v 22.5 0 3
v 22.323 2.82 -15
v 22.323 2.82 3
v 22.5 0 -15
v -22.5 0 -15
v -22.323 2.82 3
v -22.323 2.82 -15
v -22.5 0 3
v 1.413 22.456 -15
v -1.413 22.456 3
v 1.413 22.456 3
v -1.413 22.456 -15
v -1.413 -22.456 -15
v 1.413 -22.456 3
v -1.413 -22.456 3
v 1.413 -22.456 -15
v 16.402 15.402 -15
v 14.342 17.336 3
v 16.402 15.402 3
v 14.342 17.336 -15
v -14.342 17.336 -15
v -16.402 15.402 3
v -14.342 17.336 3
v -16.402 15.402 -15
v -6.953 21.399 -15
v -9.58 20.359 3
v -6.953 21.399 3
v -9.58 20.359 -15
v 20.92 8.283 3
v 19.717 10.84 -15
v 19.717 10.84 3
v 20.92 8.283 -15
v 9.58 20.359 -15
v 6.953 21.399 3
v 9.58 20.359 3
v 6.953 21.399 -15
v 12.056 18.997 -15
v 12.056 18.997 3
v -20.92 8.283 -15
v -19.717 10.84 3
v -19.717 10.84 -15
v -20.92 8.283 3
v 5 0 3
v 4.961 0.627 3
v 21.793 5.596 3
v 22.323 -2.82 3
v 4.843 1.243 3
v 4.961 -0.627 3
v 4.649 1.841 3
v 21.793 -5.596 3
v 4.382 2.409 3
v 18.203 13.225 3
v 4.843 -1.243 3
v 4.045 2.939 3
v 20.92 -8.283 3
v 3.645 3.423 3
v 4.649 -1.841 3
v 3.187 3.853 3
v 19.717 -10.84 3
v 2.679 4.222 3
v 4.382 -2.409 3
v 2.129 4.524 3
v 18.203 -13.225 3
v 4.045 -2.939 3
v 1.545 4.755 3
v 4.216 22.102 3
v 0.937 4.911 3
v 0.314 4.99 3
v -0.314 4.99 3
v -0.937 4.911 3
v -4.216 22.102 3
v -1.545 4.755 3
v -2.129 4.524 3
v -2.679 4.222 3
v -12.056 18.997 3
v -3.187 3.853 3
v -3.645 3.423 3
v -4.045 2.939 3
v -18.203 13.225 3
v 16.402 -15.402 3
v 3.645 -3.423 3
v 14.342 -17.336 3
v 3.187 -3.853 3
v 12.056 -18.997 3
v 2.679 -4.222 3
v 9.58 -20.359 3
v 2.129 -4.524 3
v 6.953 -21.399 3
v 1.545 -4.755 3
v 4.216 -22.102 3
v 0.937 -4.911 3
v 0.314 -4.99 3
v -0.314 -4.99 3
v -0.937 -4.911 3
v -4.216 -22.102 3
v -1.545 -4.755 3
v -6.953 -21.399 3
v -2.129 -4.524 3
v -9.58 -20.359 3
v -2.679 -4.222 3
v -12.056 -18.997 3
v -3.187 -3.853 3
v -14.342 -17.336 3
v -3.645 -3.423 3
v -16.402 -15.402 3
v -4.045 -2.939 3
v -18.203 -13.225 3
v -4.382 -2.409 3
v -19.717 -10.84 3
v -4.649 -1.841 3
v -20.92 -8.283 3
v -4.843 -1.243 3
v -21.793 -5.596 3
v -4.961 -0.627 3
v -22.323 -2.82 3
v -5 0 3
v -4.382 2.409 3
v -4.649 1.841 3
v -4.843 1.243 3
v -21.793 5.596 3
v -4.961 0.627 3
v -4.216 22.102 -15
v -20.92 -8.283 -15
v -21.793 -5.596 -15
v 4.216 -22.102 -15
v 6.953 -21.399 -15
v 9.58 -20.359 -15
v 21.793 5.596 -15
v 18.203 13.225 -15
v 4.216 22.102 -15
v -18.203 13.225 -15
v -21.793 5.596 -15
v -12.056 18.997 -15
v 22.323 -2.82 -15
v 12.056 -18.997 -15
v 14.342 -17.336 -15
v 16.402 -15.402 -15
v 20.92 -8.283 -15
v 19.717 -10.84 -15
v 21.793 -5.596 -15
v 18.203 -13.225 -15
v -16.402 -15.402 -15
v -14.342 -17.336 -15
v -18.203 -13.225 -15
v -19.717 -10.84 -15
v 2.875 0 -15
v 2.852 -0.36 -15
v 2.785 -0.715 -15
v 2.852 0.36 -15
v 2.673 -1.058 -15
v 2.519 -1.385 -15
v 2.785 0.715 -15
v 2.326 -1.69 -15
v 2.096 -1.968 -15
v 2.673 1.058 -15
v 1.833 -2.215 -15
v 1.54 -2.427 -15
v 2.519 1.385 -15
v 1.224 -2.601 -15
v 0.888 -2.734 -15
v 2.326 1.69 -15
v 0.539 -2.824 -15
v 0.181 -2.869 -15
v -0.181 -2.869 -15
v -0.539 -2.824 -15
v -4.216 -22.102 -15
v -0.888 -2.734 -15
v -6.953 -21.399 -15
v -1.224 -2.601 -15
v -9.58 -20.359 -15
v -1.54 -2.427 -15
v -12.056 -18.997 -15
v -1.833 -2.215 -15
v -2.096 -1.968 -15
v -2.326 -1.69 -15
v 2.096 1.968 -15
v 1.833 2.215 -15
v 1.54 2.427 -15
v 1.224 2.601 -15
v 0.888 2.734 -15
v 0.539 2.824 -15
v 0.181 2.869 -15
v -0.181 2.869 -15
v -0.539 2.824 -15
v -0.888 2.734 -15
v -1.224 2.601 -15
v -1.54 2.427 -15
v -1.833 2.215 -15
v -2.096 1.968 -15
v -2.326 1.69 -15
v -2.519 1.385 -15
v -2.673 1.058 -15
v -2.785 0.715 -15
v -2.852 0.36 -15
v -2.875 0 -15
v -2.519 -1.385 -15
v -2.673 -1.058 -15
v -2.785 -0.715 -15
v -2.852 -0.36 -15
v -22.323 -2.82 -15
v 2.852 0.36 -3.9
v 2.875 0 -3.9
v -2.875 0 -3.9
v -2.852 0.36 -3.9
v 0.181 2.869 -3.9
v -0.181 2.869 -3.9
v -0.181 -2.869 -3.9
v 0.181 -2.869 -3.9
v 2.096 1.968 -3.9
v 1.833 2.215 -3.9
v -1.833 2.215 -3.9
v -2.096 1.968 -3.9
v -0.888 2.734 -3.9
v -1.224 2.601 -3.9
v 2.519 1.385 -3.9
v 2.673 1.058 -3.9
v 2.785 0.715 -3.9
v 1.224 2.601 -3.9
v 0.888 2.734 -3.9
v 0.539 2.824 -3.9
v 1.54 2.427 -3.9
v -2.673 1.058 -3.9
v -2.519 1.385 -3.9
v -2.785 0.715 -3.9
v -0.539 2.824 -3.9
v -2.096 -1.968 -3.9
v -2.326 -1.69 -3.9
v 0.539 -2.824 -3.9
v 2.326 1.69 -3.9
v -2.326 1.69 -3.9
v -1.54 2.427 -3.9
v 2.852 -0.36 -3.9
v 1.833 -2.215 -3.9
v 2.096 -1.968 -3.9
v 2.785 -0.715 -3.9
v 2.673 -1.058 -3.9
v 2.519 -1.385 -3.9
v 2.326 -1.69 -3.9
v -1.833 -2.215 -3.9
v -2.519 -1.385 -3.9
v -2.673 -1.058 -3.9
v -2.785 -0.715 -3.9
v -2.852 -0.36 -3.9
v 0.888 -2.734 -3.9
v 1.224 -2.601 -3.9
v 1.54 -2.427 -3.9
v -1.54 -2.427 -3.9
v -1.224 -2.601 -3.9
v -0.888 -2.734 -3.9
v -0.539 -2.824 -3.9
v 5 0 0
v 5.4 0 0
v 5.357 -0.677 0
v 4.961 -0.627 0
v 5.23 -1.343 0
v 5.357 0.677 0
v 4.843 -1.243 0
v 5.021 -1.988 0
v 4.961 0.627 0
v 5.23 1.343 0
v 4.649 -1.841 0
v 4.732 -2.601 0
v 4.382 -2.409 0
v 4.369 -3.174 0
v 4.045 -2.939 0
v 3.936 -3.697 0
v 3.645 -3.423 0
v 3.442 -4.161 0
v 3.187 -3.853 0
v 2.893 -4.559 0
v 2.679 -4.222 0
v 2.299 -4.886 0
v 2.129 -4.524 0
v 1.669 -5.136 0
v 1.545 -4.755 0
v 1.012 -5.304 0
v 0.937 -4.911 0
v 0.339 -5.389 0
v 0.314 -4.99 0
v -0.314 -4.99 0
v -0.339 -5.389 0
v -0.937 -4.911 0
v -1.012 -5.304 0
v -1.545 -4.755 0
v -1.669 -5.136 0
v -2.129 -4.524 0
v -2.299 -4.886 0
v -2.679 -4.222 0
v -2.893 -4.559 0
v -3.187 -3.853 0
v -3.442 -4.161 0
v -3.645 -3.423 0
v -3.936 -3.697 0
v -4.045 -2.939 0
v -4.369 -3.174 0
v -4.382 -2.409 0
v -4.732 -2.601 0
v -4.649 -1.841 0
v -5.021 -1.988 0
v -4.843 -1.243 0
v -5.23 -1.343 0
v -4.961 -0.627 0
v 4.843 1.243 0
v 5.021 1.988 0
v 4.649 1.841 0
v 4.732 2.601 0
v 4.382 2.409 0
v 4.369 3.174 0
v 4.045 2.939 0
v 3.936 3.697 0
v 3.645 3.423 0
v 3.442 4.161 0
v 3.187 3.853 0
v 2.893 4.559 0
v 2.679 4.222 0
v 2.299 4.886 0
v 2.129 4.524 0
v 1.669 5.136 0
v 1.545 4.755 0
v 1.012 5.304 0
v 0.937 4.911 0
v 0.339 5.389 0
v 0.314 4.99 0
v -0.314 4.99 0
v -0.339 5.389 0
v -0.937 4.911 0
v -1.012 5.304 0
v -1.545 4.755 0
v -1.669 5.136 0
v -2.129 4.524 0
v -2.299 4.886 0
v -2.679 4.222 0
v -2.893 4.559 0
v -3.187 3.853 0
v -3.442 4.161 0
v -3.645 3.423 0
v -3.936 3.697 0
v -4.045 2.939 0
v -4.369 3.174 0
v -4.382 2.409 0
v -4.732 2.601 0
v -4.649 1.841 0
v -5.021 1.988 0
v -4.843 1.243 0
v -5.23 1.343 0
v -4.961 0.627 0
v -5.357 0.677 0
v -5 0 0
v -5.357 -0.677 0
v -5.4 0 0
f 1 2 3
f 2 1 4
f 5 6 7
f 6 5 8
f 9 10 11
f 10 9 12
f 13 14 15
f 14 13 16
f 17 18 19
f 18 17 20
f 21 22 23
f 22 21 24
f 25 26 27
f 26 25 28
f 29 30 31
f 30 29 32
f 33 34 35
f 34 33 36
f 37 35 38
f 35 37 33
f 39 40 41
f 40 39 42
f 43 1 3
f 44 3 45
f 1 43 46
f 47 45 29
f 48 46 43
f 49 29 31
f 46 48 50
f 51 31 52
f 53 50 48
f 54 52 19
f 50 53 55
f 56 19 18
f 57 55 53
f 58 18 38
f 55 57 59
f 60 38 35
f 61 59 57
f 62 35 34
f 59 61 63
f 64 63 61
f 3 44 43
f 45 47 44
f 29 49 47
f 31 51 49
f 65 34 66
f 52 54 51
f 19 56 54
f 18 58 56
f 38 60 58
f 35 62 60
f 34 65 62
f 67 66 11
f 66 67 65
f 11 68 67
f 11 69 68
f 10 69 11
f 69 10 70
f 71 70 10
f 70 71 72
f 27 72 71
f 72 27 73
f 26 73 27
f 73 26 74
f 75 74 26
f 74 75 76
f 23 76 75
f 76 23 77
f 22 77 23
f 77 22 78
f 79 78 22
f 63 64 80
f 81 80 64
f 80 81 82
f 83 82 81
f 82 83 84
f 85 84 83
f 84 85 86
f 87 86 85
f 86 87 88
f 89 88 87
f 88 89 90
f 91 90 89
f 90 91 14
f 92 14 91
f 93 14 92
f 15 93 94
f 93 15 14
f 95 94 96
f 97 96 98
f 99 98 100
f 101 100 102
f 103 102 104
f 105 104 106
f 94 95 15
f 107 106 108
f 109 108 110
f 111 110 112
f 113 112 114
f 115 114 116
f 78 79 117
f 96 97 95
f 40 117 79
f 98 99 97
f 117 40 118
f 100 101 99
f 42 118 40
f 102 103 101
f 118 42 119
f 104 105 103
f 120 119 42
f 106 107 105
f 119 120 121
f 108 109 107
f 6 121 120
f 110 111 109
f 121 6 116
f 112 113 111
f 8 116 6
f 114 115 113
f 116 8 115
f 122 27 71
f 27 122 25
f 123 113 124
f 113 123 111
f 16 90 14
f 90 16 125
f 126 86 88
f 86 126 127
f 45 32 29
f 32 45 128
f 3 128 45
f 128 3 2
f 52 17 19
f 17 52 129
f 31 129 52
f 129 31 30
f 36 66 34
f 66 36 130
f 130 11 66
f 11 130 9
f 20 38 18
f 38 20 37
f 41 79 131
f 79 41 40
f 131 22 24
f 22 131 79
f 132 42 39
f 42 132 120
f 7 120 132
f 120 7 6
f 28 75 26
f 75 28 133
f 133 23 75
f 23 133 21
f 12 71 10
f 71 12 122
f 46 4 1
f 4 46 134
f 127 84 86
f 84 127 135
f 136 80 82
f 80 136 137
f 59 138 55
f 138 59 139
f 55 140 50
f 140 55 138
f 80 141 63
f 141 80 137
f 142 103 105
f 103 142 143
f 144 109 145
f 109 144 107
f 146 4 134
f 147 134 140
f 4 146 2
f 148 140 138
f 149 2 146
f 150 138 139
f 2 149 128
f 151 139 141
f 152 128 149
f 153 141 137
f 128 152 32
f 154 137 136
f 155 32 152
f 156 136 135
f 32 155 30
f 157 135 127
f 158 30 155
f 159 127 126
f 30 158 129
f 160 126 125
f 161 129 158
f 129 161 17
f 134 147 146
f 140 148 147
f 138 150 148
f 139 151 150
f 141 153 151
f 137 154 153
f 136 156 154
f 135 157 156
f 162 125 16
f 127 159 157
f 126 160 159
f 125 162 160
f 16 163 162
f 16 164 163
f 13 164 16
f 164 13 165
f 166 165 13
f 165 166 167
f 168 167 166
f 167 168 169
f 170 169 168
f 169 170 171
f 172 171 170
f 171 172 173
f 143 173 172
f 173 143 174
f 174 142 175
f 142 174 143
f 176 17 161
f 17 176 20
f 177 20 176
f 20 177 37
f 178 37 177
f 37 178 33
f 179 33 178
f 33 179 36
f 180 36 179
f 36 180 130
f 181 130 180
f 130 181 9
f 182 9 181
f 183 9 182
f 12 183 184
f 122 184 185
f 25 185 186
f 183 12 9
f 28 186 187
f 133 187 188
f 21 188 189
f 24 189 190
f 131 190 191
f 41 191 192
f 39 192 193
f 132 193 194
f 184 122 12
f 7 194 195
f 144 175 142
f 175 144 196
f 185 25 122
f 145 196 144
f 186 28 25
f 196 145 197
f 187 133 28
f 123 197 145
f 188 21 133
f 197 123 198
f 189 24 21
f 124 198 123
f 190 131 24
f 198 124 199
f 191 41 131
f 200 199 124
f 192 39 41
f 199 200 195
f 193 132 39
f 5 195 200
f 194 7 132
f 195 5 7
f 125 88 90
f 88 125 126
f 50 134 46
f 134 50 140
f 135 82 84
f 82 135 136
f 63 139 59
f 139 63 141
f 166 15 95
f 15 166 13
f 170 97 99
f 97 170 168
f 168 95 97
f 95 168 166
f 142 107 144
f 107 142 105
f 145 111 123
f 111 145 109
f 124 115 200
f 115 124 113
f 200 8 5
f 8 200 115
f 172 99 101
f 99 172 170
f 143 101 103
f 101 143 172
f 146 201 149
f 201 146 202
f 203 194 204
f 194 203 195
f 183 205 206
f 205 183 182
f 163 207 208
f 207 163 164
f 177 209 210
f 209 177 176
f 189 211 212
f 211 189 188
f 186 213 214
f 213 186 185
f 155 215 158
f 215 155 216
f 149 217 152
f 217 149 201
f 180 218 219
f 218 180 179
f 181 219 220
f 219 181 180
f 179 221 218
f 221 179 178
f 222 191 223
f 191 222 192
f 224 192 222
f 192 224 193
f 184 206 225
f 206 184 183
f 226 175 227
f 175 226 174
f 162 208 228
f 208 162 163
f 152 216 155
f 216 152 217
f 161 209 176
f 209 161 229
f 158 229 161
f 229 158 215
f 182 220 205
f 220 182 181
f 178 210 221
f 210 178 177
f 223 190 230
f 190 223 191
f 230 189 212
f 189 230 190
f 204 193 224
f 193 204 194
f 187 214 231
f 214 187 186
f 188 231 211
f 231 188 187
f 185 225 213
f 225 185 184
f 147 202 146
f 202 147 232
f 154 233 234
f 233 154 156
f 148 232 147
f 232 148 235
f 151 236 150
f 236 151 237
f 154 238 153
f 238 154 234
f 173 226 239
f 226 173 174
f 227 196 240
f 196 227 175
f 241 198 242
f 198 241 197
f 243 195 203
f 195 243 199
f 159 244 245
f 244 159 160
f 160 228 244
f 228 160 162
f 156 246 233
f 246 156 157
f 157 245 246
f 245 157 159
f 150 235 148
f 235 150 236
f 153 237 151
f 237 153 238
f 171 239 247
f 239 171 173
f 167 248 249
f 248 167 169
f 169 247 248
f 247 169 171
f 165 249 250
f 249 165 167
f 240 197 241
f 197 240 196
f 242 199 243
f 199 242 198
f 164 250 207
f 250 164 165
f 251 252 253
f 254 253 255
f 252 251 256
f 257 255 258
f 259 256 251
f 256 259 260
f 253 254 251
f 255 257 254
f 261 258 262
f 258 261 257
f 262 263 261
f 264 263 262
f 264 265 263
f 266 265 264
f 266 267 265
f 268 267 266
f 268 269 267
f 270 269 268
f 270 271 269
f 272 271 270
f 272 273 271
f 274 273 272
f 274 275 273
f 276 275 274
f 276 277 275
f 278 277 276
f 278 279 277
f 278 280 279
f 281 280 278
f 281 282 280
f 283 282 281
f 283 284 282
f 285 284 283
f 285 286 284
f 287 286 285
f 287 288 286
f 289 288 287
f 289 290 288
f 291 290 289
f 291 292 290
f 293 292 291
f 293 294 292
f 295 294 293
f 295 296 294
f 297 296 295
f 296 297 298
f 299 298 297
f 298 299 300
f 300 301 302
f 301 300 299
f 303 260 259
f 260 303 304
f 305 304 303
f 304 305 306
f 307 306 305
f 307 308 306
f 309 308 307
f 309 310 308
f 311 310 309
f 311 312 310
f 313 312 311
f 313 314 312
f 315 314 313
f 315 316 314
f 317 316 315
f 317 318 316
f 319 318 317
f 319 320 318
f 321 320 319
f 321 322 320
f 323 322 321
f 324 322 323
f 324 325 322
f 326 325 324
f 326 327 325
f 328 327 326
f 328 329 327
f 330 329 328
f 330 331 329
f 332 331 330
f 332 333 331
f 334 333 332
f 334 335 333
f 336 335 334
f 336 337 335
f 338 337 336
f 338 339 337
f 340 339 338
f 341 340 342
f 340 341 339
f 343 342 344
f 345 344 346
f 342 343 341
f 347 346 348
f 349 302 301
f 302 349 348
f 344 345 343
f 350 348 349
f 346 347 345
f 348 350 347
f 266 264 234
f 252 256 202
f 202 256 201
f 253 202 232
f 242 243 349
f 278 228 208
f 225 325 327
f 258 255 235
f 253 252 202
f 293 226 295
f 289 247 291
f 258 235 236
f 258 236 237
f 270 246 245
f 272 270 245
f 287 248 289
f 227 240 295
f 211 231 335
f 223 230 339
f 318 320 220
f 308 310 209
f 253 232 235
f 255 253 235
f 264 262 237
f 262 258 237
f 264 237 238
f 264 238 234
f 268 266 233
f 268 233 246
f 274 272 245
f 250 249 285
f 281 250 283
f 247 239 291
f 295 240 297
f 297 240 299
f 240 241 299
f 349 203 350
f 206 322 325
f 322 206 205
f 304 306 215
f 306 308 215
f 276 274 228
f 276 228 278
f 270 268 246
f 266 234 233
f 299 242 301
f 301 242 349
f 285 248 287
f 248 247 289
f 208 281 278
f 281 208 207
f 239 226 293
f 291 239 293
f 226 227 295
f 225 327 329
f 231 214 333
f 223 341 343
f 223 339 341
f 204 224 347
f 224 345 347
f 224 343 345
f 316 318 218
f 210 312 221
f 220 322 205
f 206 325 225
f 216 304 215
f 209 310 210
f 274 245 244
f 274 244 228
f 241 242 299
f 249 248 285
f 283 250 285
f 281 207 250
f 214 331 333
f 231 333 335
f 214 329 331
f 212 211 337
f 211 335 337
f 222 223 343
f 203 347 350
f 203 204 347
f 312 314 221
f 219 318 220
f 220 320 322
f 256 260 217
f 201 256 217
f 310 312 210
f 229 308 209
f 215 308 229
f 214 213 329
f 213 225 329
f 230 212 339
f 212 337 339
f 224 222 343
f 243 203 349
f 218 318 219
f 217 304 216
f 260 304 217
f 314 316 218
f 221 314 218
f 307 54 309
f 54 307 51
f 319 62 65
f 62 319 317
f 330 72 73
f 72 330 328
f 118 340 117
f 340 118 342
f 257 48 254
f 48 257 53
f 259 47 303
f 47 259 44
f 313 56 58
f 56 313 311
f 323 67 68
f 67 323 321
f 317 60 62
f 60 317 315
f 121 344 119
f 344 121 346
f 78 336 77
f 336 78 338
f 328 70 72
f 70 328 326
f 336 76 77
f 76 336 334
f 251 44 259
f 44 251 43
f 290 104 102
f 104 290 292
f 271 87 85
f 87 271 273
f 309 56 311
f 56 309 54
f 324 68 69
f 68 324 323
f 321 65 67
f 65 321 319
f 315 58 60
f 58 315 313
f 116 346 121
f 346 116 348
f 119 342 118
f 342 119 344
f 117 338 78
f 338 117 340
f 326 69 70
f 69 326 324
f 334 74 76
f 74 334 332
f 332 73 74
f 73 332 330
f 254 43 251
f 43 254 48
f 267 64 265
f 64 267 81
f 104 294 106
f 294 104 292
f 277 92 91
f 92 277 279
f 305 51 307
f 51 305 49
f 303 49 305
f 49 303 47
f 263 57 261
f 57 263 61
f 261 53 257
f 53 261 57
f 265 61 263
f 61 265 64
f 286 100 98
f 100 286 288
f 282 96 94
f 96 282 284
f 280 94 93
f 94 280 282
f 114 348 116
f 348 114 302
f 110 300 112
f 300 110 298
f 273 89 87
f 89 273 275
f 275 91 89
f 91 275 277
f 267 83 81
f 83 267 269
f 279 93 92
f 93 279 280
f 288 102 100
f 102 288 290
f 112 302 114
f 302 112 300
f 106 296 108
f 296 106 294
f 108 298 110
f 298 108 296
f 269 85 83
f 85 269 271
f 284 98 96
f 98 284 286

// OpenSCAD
$fn = 50;

difference() {
	union() {
		translate(v = [0, 0, -15.0]) {
			cylinder(h = 18, r = 22.5);
		}
		#translate(v = [0, 0, -18.0]) {
			cylinder(h = 18, r = 2.875);
		}
	}
	union() {
		translate(v = [0, 0, 0]) {
			rotate(a = [0, 0, 0]) {
				difference() {
					union() {
						translate(v = [0, 0, -18.0]) {
							cylinder(h = 18, r = 2.6);
						}
						translate(v = [0, 0, -3.9]) {
							cylinder(h = 3.9, r1 = 2.875, r2 = 5.4);
						}
						translate(v = [0, 0, -18.0]) {
							cylinder(h = 18, r = 2.875);
						}
						translate(v = [0, 0, -18.0]) {
							cylinder(h = 18, r = 2.6);
						}
					}
					union();
				}
			}
		}
		#cylinder(h = 3, r = 5.0);
	}
}
